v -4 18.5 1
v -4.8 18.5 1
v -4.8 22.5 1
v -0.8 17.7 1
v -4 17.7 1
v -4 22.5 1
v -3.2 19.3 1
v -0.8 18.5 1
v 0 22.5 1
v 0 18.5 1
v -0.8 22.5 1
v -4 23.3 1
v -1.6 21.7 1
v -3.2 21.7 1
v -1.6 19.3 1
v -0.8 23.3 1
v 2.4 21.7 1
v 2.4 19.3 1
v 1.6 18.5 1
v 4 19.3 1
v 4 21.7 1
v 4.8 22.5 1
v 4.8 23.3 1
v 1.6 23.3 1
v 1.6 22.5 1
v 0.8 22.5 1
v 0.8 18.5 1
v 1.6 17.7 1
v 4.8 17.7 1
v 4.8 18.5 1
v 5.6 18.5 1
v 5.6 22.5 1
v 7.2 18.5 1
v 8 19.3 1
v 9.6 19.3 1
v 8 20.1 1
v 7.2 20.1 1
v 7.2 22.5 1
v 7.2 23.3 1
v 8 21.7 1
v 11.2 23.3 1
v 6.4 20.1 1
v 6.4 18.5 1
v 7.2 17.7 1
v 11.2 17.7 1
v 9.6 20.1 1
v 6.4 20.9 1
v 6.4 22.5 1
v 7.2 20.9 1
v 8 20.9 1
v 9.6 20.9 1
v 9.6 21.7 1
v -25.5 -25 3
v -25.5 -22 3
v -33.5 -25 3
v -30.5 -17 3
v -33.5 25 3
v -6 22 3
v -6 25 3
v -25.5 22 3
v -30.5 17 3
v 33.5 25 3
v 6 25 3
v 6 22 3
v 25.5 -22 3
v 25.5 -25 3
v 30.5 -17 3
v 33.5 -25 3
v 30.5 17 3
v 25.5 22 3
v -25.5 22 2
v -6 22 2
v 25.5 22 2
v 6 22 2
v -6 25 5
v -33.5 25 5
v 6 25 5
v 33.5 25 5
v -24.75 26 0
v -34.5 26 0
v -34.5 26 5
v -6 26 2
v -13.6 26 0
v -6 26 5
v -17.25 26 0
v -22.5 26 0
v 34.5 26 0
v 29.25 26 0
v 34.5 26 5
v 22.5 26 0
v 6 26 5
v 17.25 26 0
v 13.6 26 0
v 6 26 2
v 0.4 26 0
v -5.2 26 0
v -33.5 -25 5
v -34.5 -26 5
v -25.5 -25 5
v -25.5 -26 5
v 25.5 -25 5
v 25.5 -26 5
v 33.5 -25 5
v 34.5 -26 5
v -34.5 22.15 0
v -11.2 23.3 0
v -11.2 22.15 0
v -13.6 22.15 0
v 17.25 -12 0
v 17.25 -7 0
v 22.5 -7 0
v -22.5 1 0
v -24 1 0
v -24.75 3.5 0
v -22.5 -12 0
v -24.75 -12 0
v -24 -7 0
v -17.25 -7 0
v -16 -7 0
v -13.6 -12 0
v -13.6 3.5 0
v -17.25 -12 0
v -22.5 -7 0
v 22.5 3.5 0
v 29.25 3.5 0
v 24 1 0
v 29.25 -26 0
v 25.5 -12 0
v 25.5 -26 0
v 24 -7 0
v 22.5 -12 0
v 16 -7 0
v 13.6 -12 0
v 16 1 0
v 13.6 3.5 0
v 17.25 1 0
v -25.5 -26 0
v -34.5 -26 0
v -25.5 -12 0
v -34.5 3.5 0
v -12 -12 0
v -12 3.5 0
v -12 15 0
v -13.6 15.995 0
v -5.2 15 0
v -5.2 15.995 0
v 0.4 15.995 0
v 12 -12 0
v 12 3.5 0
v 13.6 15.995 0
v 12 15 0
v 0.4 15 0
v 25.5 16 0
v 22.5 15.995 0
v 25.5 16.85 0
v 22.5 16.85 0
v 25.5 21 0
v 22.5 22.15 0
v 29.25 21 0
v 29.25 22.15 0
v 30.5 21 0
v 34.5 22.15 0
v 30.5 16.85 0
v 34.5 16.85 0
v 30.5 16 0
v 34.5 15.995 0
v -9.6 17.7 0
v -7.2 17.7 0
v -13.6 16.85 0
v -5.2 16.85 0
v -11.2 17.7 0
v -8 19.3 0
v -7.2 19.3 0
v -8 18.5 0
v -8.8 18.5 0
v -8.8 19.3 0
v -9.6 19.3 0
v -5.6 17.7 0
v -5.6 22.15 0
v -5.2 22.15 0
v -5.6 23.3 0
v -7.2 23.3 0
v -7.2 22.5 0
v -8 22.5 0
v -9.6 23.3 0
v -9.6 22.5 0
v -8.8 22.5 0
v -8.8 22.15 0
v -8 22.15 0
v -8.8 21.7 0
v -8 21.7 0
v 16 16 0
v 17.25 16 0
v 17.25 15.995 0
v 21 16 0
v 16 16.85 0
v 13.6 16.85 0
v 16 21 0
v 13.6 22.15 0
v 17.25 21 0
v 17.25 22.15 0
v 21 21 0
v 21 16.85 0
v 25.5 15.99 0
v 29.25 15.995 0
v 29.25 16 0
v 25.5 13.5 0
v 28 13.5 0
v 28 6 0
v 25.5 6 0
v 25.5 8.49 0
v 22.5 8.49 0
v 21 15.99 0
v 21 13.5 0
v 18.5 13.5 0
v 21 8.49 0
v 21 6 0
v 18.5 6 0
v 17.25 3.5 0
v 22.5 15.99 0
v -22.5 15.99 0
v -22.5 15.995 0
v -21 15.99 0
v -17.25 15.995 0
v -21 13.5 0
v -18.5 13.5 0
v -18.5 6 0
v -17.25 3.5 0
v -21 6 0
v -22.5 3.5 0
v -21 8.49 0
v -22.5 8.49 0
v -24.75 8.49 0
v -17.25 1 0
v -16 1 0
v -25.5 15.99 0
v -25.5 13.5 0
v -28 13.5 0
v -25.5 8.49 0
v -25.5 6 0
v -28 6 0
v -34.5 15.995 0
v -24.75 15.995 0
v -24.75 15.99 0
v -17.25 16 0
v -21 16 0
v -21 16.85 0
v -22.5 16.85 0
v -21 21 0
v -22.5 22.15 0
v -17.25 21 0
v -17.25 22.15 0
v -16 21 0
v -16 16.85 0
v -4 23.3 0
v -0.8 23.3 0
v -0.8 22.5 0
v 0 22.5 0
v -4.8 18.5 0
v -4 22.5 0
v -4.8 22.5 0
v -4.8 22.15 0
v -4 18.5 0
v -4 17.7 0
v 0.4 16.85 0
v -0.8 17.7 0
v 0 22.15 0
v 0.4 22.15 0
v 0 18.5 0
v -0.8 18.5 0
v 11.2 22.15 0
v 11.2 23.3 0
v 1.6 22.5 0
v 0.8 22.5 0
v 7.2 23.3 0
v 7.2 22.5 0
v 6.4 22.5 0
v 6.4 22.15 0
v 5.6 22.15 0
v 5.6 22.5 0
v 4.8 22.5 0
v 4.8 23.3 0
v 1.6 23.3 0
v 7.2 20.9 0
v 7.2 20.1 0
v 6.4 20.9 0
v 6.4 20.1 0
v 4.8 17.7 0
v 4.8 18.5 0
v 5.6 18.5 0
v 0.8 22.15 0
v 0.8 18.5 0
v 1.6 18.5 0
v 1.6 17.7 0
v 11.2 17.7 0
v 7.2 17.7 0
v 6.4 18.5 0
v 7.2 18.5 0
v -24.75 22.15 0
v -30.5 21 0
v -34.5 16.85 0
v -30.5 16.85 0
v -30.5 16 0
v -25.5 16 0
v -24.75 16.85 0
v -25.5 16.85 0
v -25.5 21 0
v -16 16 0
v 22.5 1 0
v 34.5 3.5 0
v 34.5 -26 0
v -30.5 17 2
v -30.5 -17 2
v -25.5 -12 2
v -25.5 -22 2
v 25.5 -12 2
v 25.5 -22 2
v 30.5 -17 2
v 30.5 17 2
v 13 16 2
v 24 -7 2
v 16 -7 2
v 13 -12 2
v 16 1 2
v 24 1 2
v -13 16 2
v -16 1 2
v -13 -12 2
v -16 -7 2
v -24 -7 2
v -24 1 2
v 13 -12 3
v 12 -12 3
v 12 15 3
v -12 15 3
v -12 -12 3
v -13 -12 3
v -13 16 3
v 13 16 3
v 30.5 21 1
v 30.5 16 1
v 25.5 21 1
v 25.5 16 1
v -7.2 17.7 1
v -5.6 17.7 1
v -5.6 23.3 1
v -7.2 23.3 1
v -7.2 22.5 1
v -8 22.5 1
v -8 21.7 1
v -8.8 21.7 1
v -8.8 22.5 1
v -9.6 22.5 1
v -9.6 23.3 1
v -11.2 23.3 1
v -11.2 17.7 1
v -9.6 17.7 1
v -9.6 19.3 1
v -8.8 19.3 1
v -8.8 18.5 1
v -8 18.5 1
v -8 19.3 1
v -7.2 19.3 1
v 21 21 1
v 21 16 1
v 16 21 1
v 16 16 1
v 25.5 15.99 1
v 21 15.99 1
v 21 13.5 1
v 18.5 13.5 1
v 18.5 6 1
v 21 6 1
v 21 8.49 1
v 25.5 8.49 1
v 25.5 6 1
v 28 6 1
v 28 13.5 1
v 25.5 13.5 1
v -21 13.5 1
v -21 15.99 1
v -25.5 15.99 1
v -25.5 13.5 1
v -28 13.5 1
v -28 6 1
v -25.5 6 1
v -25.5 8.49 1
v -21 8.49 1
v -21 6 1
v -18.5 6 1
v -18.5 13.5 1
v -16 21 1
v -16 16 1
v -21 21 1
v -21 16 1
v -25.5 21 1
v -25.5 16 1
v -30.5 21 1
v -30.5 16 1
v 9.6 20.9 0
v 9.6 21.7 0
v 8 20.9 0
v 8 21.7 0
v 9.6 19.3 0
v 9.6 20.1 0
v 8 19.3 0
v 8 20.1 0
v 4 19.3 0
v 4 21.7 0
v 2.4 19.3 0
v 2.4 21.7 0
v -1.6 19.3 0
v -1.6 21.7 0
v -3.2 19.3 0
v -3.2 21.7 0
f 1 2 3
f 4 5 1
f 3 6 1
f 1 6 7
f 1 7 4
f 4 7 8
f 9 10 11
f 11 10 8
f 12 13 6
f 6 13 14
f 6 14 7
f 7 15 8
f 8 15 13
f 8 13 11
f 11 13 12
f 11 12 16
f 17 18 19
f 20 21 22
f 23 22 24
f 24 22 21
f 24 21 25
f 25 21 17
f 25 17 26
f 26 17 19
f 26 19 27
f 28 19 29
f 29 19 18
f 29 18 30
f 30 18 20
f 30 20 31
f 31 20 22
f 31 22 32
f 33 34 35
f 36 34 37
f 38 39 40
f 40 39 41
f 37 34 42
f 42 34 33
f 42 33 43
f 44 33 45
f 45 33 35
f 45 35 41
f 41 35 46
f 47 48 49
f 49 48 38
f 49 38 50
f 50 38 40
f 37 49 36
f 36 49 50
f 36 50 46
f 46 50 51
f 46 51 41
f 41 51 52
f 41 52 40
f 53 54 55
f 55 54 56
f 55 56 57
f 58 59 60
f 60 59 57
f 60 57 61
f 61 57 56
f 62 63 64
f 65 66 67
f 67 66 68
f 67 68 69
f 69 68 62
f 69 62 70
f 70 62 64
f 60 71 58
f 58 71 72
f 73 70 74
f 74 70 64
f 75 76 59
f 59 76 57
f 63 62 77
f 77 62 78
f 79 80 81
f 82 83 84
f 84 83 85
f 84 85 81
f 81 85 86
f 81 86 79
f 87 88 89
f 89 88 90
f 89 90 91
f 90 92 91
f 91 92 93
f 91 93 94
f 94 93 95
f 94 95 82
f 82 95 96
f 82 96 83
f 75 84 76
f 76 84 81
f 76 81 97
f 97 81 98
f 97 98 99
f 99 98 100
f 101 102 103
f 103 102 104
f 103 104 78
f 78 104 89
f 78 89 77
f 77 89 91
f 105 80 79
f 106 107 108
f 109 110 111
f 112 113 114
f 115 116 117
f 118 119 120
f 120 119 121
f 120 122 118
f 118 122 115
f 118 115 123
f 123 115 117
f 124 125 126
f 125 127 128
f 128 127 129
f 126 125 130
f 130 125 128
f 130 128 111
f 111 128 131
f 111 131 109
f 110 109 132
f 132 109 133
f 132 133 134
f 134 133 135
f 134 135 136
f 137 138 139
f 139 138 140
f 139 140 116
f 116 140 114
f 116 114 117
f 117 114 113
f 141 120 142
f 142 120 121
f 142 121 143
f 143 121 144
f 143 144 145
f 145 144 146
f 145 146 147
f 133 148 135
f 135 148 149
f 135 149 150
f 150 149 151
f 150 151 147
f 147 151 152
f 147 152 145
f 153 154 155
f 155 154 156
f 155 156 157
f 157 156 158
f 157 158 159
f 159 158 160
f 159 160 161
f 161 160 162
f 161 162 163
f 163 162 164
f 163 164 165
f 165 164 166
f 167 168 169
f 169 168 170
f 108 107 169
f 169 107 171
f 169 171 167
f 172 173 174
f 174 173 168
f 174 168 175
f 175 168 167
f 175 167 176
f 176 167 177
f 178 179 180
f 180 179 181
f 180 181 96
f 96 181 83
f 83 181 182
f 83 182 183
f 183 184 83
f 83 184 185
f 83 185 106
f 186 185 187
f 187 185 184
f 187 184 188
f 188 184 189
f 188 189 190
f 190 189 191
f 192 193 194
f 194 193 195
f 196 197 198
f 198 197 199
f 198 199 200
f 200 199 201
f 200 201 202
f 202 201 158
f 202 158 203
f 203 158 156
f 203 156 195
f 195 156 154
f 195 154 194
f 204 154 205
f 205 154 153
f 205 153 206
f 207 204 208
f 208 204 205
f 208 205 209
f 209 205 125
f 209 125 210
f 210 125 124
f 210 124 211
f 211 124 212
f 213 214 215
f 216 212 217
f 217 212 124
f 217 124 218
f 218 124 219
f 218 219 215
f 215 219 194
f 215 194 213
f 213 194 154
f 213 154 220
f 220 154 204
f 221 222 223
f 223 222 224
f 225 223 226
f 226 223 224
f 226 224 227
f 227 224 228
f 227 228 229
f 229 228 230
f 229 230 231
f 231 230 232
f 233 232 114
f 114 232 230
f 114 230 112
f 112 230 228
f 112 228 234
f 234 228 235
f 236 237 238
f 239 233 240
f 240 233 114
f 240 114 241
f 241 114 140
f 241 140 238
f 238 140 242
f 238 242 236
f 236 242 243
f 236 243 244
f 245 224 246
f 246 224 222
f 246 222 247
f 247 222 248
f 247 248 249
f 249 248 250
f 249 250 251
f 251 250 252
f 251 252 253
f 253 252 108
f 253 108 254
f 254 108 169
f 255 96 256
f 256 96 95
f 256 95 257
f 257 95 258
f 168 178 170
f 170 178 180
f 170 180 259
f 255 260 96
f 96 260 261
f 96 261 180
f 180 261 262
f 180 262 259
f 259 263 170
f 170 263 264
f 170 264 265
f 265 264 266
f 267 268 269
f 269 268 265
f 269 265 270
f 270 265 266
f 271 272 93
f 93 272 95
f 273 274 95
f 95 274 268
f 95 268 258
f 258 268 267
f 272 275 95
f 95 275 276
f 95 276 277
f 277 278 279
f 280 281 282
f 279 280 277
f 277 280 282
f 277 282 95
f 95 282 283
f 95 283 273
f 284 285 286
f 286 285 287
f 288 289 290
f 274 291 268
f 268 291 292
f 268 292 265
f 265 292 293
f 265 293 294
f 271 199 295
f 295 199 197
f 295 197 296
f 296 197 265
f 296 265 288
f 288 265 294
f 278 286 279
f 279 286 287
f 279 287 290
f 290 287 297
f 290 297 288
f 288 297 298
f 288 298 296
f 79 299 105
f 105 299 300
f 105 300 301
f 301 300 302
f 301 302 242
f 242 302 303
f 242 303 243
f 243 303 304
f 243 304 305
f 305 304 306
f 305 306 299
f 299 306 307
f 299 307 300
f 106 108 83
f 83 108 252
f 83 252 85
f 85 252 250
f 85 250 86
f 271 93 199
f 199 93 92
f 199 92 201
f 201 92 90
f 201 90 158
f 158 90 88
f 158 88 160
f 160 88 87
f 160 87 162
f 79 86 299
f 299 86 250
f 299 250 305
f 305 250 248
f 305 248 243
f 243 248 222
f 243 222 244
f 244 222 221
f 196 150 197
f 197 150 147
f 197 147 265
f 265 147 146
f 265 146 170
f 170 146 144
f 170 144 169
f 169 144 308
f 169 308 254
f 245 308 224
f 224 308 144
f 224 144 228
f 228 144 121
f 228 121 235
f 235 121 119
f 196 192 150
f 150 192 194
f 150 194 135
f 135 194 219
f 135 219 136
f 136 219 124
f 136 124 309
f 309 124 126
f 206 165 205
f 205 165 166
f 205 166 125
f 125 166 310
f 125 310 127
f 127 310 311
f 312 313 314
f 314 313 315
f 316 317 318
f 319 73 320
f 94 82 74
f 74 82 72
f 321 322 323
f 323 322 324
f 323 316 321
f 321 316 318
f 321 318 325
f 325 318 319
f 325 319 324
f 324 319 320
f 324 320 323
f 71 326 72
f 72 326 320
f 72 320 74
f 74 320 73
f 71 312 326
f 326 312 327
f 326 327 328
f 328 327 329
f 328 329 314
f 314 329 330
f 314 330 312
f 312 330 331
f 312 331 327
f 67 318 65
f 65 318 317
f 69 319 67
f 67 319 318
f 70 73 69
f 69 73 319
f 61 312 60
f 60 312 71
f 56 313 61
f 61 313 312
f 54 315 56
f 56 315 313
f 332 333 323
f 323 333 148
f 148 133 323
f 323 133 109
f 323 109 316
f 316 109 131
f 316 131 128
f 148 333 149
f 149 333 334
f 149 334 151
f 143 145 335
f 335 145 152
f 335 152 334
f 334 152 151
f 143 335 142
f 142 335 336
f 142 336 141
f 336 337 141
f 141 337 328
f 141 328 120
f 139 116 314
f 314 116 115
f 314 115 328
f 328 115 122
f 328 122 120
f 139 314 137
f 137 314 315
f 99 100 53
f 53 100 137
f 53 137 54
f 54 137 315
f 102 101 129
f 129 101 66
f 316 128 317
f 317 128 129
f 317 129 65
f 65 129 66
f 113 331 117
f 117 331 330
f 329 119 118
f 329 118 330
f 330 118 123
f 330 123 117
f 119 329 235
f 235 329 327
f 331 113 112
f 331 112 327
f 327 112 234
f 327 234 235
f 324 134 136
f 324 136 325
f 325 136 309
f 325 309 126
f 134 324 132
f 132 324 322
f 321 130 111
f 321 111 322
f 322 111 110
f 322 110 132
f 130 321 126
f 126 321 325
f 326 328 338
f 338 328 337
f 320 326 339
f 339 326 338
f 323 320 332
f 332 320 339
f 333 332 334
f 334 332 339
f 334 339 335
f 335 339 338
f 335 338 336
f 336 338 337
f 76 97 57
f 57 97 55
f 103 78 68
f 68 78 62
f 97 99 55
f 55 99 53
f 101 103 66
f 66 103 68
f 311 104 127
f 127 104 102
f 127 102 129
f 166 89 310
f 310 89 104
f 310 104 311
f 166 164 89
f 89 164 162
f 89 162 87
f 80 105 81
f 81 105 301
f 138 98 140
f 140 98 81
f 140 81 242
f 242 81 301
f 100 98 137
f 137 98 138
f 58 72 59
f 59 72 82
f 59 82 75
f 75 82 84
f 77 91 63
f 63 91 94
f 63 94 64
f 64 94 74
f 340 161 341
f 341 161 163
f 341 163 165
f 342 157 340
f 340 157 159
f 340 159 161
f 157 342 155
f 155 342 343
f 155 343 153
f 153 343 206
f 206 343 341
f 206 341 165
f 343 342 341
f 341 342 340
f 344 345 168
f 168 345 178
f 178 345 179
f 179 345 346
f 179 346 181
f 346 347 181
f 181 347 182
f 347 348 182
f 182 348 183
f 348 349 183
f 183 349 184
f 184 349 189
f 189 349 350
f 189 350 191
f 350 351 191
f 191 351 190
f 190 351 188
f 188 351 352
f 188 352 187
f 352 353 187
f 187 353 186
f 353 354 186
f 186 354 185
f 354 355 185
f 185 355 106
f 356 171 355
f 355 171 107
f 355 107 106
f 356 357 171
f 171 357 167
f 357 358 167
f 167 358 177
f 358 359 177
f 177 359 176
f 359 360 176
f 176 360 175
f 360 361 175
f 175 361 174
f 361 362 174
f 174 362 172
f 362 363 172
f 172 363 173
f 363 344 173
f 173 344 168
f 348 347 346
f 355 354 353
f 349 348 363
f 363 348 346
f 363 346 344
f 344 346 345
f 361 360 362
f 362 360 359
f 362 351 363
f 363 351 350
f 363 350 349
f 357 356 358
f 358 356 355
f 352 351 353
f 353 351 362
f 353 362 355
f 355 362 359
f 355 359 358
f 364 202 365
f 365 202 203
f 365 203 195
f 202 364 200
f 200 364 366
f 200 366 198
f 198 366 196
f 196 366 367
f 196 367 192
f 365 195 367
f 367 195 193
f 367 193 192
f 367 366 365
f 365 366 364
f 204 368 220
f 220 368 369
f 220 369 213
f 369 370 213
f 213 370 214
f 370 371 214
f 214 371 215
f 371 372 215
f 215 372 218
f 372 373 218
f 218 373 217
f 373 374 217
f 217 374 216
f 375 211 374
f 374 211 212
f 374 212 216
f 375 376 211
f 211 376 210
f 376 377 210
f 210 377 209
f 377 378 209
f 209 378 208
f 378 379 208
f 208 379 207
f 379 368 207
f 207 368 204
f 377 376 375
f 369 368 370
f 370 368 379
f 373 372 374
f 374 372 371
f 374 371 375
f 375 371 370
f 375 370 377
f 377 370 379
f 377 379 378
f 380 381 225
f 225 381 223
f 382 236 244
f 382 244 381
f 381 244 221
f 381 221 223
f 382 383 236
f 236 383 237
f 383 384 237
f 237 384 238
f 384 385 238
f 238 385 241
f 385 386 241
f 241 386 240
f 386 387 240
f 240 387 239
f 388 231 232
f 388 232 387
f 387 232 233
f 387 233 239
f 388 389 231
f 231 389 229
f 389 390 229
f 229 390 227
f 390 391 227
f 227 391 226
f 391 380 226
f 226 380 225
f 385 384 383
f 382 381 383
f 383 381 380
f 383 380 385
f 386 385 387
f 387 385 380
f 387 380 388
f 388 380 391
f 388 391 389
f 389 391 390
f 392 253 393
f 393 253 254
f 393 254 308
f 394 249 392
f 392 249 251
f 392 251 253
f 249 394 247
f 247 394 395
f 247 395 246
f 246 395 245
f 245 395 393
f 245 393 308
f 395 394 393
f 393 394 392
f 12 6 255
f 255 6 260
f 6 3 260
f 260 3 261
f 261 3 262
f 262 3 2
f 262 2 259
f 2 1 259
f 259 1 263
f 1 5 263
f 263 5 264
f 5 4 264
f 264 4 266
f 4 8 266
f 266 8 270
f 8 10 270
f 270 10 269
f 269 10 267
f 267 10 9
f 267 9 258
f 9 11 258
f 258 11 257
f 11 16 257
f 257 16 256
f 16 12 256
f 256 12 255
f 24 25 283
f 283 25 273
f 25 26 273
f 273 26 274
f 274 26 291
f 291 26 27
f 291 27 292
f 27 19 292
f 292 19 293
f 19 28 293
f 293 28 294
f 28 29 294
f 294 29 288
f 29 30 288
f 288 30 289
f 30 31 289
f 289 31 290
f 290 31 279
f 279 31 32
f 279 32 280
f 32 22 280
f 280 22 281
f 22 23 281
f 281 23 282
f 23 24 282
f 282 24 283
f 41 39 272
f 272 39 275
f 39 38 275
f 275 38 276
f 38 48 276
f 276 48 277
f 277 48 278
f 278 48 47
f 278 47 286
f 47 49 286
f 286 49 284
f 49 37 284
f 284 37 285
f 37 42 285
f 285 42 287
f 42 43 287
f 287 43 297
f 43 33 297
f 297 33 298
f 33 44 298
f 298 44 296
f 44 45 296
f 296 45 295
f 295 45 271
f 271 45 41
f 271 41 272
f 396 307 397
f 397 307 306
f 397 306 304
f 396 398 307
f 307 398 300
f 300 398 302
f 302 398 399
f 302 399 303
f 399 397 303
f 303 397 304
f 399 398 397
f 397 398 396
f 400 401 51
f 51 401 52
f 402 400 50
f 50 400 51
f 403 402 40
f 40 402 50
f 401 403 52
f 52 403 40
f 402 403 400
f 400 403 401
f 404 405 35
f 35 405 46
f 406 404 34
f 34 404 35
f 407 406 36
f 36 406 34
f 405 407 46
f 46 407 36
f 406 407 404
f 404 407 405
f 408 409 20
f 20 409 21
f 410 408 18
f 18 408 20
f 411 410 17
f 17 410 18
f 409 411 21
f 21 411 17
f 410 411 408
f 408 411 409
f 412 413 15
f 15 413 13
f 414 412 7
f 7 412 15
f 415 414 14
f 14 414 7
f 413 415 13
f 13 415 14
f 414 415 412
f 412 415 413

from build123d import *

# Parameters (mm, degrees)
SKICA1_W                    = 67
SKICA1_H                    = 50
P_IDAT_VYSUNUT_M1_DEPTH     = 3
ODEBRAT_VYSUNUT_M1_DEPTH    = 1
SKICA3_W                    = 8
SKICA3_H                    = 8
ODEBRAT_VYSUNUT_M2_DEPTH    = 4
VYSUNOUT_TENKOST_NN_1_DEPTH = 1
VYSUNOUT_TENKOST_NN_2_DEPTH = 5
SKICA6_W                    = 12
SKICA6_H                    = 4
ODEBRAT_VYSUNUT_M3_DEPTH    = 4
SKICA7_W                    = 5
SKICA7_H                    = 5
ODEBRAT_VYSUNUT_M5_DEPTH    = 1
P_IDAT_START                = -1
SKICA8_W                    = 1.6
SKICA8_H                    = 0.8
SKICA8_H_2                  = 2.4
P_IDAT_VYSUNUT_M3_DEPTH     = 1


with BuildPart() as part:
    # Skica1 → Přidat vysunutím1 (new body)
    with BuildSketch(Plane.XY):
        Rectangle(SKICA1_W, SKICA1_H)
    extrude(amount=P_IDAT_VYSUNUT_M1_DEPTH)

    # Skica2 → Odebrat vysunutím1 (cut)
    with BuildSketch(Plane.XY.offset(3)):
        Polygon((-25.5, -22), (-30.5, -17), (-30.5, 17), (-25.5, 22), (25.5, 22), (30.5, 17), (30.5, -17), (25.5, -22), align=None)
    extrude(amount=-ODEBRAT_VYSUNUT_M1_DEPTH, mode=Mode.SUBTRACT)

    # Skica3 → Odebrat vysunutím2 (cut, through all)
    with BuildSketch(Plane(origin=(0, 0, 0), x_dir=(-1, 0, 0), z_dir=(0, 0, -1))):
        with Locations((20, -3)):
            Rectangle(SKICA3_W, SKICA3_H)
        with Locations((-20, -3)):
            Rectangle(SKICA3_W, SKICA3_H)
        Polygon((25.5, -25), (-25.5, -25), (-25.5, -12), (-12, -12), (-12, 15), (12, 15), (12, -12), (25.5, -12), align=None)
    extrude(amount=-ODEBRAT_VYSUNUT_M2_DEPTH, mode=Mode.SUBTRACT)

    # Skica4 → Vysunout tenkostěnný1 (add)
    with BuildSketch(Plane.XY.offset(2)):
        Polygon((-12, -12), (-12, 15), (12, 15), (12, -12), (13, -12), (13, 16), (-13, 16), (-13, -12), align=None)
    extrude(amount=VYSUNOUT_TENKOST_NN_1_DEPTH)

    # Skica5 → Vysunout tenkostěnný2 (add)
    with BuildSketch(Plane(origin=(0, 0, 0), x_dir=(-1, 0, 0), z_dir=(0, 0, -1))):
        Polygon((-25.5, -25), (-33.5, -25), (-33.5, 25), (33.5, 25), (33.5, -25), (25.5, -25), (25.5, -26), (34.5, -26), (34.5, 26), (-34.5, 26), (-34.5, -26), (-25.5, -26), align=None)
    extrude(amount=-VYSUNOUT_TENKOST_NN_2_DEPTH)

    # Skica6 → Odebrat vysunutím3 (cut, through all)
    with BuildSketch(Plane.XY.offset(2)):
        with Locations((0, 24)):
            Rectangle(SKICA6_W, SKICA6_H)
    extrude(amount=ODEBRAT_VYSUNUT_M3_DEPTH, mode=Mode.SUBTRACT)

    # Skica7 → Odebrat vysunutím5 (cut)
    with BuildSketch(Plane(origin=(0, 0, 0), x_dir=(-1, 0, 0), z_dir=(0, 0, -1))):
        with Locations((-28, 18.5)):
            Rectangle(SKICA7_W, SKICA7_H)
        with Locations((-18.5, 18.5)):
            Rectangle(SKICA7_W, SKICA7_H)
        Polygon((-25.5, 15.99), (-25.5, 13.5), (-28, 13.5), (-28, 6), (-25.5, 6), (-25.5, 8.49), (-21, 8.49), (-21, 6), (-18.5, 6), (-18.5, 13.5), (-21, 13.5), (-21, 15.99), align=None)
        Polygon((21, 13.5), (18.5, 13.5), (18.5, 6), (21, 6), (21, 8.49), (25.5, 8.49), (25.5, 6), (28, 6), (28, 13.5), (25.5, 13.5), (25.5, 15.99), (21, 15.99), align=None)
        with Locations((18.5, 18.5)):
            Rectangle(SKICA7_W, SKICA7_H)
        with Locations((28, 18.5)):
            Rectangle(SKICA7_W, SKICA7_H)
        Polygon((-11.2, 23.3), (-11.2, 17.7), (-7.2, 17.7), (-7.2, 18.5), (-6.4, 18.5), (-6.4, 20.1), (-7.2, 20.1), (-7.2, 20.9), (-6.4, 20.9), (-6.4, 22.5), (-7.2, 22.5), (-7.2, 23.3), align=None)
        Polygon((-1.6, 23.3), (-4.8, 23.3), (-4.8, 22.5), (-5.6, 22.5), (-5.6, 18.5), (-4.8, 18.5), (-4.8, 17.7), (-1.6, 17.7), (-1.6, 18.5), (-0.8, 18.5), (-0.8, 22.5), (-1.6, 22.5), align=None)
        Polygon((0.8, 23.3), (0.8, 22.5), (0, 22.5), (0, 18.5), (0.8, 18.5), (0.8, 17.7), (4, 17.7), (4, 18.5), (4.8, 18.5), (4.8, 22.5), (4, 22.5), (4, 23.3), align=None)
        Polygon((5.6, 17.7), (5.6, 23.3), (7.2, 23.3), (7.2, 22.5), (8, 22.5), (8, 21.7), (8.8, 21.7), (8.8, 22.5), (9.6, 22.5), (9.6, 23.3), (11.2, 23.3), (11.2, 17.7), (9.6, 17.7), (9.6, 19.3), (8.8, 19.3), (8.8, 18.5), (8, 18.5), (8, 19.3), (7.2, 19.3), (7.2, 17.7), align=None)
    extrude(amount=-ODEBRAT_VYSUNUT_M5_DEPTH, mode=Mode.SUBTRACT)

    # Skica8 → Přidat vysunutím3 (add)
    with BuildSketch(Plane(origin=(0, 0, 0), x_dir=(-1, 0, 0), z_dir=(0, 0, -1)).offset(P_IDAT_START)):
        with Locations((-8.8, 21.3)):
            Rectangle(SKICA8_W, SKICA8_H)
        with Locations((-8.8, 19.7)):
            Rectangle(SKICA8_W, SKICA8_H)
        with Locations((-3.2, 20.5)):
            Rectangle(SKICA8_W, SKICA8_H_2)
        with Locations((2.4, 20.5)):
            Rectangle(SKICA8_W, SKICA8_H_2)
    extrude(amount=P_IDAT_VYSUNUT_M3_DEPTH)


solid = part.part
